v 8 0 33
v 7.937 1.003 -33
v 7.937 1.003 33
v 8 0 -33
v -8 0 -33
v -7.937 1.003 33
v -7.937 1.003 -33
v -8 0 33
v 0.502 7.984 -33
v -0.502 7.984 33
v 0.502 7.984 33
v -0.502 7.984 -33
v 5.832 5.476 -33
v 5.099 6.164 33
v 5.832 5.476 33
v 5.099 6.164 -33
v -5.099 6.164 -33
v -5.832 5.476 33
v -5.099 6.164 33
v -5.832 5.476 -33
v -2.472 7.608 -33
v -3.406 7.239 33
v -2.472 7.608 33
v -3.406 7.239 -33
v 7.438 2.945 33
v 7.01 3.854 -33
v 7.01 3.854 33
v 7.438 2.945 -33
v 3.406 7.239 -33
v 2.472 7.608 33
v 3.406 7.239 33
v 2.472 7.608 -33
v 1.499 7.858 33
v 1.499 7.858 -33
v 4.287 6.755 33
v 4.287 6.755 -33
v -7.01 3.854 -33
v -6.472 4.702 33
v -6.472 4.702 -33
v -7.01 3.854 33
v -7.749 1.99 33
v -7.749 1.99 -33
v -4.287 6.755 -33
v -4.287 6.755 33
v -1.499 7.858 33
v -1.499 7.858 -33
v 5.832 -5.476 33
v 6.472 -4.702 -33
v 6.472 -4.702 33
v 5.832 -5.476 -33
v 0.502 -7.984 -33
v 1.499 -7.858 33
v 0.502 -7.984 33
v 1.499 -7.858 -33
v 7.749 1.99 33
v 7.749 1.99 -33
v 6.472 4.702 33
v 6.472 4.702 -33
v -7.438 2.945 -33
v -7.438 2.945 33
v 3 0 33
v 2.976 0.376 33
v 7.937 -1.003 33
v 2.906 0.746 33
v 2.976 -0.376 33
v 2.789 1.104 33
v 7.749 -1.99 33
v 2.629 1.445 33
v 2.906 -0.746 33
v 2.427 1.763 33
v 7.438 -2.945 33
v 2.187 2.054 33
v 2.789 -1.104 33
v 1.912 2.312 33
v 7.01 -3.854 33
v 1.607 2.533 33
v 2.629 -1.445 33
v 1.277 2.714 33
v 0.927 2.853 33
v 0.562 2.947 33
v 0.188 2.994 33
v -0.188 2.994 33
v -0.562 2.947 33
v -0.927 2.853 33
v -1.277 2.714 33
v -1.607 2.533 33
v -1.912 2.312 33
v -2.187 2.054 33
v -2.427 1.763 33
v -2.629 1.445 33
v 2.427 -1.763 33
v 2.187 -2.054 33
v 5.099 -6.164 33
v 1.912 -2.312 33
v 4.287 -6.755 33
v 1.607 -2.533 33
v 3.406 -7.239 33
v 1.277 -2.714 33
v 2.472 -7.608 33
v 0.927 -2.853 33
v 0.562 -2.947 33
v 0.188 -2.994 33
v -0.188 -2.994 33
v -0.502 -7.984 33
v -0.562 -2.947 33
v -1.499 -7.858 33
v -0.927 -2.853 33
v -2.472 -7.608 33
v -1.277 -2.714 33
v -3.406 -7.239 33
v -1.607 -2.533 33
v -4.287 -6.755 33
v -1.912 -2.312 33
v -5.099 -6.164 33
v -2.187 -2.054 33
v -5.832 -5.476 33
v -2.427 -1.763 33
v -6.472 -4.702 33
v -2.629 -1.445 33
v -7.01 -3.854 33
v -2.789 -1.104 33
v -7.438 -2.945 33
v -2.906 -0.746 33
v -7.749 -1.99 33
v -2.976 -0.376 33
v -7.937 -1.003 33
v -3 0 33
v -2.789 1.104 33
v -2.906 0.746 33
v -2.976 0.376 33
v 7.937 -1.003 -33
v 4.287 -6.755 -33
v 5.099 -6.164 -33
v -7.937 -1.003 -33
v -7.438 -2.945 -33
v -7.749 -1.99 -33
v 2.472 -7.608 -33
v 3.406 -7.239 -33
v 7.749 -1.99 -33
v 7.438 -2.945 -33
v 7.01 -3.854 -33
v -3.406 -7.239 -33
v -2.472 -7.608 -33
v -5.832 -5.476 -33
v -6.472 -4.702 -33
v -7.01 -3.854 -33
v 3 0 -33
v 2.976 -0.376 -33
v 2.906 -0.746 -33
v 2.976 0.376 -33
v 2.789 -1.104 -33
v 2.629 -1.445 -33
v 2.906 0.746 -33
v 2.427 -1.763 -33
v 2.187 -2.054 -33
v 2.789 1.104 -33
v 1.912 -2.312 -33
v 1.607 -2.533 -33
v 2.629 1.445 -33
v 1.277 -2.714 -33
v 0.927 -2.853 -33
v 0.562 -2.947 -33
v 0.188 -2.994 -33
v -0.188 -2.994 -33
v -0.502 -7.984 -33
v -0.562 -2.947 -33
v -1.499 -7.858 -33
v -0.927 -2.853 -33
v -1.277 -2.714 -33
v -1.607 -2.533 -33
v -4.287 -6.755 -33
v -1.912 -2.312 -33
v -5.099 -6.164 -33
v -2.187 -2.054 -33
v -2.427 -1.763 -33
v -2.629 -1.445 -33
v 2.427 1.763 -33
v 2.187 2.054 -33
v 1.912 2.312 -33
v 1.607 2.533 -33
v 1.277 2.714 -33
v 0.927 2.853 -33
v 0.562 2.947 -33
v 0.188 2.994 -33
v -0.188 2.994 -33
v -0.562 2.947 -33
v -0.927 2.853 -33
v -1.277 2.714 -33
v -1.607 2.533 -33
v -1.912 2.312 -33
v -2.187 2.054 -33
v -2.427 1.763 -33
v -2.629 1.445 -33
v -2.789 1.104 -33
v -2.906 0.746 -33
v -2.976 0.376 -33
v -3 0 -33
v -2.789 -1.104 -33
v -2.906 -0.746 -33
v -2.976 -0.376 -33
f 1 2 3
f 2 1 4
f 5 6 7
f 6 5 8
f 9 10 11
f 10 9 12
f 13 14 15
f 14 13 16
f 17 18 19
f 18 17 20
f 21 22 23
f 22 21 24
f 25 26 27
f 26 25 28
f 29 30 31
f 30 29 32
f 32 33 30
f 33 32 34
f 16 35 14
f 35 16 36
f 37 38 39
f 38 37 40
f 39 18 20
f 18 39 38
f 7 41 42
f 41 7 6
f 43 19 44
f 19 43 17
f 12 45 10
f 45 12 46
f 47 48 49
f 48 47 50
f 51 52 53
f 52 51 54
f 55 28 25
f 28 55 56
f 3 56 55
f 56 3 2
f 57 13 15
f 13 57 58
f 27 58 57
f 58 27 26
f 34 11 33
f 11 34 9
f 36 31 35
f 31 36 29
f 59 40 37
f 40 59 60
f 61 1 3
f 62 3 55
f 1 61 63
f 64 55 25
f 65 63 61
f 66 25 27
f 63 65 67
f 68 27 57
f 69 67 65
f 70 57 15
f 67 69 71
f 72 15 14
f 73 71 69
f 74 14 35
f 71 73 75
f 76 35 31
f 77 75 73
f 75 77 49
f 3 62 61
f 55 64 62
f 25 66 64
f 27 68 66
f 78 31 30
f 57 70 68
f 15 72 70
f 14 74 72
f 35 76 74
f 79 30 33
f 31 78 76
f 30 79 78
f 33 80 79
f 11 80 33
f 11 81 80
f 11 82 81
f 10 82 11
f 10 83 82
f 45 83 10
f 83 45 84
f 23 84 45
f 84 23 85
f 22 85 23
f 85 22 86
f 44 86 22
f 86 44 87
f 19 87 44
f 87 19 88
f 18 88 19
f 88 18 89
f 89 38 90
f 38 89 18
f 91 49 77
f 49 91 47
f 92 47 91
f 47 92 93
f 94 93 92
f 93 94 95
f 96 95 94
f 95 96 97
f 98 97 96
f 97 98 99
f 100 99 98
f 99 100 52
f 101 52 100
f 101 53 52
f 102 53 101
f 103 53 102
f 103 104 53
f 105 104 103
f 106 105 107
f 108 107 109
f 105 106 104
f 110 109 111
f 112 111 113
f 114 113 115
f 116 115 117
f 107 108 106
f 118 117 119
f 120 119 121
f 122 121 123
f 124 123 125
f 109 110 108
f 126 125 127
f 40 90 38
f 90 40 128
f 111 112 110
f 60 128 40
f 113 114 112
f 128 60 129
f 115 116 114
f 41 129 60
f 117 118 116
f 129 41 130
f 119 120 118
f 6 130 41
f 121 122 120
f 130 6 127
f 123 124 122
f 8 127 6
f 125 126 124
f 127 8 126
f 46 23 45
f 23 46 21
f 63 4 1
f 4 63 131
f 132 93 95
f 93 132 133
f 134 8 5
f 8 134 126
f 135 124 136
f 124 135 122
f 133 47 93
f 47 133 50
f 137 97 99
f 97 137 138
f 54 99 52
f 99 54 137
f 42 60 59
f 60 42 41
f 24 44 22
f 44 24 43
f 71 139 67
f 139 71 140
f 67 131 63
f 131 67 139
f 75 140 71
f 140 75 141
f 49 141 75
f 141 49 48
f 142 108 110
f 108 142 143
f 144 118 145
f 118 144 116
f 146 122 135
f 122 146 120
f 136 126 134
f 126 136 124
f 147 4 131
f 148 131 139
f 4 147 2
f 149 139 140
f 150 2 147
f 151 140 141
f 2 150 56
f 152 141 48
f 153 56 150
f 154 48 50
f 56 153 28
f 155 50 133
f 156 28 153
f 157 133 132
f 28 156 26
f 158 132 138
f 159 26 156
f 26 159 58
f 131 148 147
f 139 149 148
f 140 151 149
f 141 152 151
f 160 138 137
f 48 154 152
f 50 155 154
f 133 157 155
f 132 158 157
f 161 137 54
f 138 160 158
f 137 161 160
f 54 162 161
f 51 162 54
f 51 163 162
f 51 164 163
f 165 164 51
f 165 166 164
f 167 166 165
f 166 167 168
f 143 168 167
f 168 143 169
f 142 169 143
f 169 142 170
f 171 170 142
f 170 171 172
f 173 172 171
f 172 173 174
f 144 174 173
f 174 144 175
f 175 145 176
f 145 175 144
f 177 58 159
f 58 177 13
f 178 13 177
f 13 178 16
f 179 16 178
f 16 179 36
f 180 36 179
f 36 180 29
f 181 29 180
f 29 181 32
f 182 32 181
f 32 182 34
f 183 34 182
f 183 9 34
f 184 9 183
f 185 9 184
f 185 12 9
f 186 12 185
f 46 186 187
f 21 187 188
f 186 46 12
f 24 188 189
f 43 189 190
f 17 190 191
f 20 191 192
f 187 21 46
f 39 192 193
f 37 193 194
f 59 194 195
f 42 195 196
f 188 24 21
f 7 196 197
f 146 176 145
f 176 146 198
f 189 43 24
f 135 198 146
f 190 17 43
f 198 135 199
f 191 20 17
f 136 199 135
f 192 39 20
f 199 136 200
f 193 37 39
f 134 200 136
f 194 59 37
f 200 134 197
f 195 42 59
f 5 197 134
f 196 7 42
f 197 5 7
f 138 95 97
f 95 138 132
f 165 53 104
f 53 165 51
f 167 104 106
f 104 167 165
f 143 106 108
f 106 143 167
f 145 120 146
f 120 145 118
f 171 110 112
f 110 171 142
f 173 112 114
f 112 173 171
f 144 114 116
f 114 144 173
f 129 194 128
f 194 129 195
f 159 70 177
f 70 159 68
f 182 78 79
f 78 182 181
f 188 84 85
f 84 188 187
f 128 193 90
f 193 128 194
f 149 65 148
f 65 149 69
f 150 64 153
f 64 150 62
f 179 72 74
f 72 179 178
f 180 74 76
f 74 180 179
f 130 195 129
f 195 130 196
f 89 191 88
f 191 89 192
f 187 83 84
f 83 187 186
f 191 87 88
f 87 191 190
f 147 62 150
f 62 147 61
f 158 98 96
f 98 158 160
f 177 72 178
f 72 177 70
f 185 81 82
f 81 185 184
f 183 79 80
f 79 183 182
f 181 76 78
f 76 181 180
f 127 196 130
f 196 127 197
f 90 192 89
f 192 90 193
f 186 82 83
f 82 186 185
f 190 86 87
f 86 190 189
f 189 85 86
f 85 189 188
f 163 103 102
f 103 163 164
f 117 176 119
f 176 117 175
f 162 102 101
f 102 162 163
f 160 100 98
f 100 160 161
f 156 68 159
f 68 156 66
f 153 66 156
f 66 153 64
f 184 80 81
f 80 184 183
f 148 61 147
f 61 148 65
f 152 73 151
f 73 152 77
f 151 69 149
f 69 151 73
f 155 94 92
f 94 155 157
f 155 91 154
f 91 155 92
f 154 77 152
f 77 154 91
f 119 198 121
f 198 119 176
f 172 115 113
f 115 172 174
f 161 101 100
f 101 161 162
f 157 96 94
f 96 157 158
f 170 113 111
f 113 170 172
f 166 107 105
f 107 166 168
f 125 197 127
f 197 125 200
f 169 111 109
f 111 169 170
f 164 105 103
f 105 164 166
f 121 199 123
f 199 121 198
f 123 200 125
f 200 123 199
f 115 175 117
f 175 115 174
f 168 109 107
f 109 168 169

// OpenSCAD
$fn = 50;


difference() {
	union() {
		translate(v = [0, 0, -33.0000000000]) {
			cylinder(h = 66, r = 8.0000000000);
		}
	}
	union() {
		translate(v = [0, 0, -100.0000000000]) {
			cylinder(h = 200, r = 3.0000000000);
		}
	}
}
